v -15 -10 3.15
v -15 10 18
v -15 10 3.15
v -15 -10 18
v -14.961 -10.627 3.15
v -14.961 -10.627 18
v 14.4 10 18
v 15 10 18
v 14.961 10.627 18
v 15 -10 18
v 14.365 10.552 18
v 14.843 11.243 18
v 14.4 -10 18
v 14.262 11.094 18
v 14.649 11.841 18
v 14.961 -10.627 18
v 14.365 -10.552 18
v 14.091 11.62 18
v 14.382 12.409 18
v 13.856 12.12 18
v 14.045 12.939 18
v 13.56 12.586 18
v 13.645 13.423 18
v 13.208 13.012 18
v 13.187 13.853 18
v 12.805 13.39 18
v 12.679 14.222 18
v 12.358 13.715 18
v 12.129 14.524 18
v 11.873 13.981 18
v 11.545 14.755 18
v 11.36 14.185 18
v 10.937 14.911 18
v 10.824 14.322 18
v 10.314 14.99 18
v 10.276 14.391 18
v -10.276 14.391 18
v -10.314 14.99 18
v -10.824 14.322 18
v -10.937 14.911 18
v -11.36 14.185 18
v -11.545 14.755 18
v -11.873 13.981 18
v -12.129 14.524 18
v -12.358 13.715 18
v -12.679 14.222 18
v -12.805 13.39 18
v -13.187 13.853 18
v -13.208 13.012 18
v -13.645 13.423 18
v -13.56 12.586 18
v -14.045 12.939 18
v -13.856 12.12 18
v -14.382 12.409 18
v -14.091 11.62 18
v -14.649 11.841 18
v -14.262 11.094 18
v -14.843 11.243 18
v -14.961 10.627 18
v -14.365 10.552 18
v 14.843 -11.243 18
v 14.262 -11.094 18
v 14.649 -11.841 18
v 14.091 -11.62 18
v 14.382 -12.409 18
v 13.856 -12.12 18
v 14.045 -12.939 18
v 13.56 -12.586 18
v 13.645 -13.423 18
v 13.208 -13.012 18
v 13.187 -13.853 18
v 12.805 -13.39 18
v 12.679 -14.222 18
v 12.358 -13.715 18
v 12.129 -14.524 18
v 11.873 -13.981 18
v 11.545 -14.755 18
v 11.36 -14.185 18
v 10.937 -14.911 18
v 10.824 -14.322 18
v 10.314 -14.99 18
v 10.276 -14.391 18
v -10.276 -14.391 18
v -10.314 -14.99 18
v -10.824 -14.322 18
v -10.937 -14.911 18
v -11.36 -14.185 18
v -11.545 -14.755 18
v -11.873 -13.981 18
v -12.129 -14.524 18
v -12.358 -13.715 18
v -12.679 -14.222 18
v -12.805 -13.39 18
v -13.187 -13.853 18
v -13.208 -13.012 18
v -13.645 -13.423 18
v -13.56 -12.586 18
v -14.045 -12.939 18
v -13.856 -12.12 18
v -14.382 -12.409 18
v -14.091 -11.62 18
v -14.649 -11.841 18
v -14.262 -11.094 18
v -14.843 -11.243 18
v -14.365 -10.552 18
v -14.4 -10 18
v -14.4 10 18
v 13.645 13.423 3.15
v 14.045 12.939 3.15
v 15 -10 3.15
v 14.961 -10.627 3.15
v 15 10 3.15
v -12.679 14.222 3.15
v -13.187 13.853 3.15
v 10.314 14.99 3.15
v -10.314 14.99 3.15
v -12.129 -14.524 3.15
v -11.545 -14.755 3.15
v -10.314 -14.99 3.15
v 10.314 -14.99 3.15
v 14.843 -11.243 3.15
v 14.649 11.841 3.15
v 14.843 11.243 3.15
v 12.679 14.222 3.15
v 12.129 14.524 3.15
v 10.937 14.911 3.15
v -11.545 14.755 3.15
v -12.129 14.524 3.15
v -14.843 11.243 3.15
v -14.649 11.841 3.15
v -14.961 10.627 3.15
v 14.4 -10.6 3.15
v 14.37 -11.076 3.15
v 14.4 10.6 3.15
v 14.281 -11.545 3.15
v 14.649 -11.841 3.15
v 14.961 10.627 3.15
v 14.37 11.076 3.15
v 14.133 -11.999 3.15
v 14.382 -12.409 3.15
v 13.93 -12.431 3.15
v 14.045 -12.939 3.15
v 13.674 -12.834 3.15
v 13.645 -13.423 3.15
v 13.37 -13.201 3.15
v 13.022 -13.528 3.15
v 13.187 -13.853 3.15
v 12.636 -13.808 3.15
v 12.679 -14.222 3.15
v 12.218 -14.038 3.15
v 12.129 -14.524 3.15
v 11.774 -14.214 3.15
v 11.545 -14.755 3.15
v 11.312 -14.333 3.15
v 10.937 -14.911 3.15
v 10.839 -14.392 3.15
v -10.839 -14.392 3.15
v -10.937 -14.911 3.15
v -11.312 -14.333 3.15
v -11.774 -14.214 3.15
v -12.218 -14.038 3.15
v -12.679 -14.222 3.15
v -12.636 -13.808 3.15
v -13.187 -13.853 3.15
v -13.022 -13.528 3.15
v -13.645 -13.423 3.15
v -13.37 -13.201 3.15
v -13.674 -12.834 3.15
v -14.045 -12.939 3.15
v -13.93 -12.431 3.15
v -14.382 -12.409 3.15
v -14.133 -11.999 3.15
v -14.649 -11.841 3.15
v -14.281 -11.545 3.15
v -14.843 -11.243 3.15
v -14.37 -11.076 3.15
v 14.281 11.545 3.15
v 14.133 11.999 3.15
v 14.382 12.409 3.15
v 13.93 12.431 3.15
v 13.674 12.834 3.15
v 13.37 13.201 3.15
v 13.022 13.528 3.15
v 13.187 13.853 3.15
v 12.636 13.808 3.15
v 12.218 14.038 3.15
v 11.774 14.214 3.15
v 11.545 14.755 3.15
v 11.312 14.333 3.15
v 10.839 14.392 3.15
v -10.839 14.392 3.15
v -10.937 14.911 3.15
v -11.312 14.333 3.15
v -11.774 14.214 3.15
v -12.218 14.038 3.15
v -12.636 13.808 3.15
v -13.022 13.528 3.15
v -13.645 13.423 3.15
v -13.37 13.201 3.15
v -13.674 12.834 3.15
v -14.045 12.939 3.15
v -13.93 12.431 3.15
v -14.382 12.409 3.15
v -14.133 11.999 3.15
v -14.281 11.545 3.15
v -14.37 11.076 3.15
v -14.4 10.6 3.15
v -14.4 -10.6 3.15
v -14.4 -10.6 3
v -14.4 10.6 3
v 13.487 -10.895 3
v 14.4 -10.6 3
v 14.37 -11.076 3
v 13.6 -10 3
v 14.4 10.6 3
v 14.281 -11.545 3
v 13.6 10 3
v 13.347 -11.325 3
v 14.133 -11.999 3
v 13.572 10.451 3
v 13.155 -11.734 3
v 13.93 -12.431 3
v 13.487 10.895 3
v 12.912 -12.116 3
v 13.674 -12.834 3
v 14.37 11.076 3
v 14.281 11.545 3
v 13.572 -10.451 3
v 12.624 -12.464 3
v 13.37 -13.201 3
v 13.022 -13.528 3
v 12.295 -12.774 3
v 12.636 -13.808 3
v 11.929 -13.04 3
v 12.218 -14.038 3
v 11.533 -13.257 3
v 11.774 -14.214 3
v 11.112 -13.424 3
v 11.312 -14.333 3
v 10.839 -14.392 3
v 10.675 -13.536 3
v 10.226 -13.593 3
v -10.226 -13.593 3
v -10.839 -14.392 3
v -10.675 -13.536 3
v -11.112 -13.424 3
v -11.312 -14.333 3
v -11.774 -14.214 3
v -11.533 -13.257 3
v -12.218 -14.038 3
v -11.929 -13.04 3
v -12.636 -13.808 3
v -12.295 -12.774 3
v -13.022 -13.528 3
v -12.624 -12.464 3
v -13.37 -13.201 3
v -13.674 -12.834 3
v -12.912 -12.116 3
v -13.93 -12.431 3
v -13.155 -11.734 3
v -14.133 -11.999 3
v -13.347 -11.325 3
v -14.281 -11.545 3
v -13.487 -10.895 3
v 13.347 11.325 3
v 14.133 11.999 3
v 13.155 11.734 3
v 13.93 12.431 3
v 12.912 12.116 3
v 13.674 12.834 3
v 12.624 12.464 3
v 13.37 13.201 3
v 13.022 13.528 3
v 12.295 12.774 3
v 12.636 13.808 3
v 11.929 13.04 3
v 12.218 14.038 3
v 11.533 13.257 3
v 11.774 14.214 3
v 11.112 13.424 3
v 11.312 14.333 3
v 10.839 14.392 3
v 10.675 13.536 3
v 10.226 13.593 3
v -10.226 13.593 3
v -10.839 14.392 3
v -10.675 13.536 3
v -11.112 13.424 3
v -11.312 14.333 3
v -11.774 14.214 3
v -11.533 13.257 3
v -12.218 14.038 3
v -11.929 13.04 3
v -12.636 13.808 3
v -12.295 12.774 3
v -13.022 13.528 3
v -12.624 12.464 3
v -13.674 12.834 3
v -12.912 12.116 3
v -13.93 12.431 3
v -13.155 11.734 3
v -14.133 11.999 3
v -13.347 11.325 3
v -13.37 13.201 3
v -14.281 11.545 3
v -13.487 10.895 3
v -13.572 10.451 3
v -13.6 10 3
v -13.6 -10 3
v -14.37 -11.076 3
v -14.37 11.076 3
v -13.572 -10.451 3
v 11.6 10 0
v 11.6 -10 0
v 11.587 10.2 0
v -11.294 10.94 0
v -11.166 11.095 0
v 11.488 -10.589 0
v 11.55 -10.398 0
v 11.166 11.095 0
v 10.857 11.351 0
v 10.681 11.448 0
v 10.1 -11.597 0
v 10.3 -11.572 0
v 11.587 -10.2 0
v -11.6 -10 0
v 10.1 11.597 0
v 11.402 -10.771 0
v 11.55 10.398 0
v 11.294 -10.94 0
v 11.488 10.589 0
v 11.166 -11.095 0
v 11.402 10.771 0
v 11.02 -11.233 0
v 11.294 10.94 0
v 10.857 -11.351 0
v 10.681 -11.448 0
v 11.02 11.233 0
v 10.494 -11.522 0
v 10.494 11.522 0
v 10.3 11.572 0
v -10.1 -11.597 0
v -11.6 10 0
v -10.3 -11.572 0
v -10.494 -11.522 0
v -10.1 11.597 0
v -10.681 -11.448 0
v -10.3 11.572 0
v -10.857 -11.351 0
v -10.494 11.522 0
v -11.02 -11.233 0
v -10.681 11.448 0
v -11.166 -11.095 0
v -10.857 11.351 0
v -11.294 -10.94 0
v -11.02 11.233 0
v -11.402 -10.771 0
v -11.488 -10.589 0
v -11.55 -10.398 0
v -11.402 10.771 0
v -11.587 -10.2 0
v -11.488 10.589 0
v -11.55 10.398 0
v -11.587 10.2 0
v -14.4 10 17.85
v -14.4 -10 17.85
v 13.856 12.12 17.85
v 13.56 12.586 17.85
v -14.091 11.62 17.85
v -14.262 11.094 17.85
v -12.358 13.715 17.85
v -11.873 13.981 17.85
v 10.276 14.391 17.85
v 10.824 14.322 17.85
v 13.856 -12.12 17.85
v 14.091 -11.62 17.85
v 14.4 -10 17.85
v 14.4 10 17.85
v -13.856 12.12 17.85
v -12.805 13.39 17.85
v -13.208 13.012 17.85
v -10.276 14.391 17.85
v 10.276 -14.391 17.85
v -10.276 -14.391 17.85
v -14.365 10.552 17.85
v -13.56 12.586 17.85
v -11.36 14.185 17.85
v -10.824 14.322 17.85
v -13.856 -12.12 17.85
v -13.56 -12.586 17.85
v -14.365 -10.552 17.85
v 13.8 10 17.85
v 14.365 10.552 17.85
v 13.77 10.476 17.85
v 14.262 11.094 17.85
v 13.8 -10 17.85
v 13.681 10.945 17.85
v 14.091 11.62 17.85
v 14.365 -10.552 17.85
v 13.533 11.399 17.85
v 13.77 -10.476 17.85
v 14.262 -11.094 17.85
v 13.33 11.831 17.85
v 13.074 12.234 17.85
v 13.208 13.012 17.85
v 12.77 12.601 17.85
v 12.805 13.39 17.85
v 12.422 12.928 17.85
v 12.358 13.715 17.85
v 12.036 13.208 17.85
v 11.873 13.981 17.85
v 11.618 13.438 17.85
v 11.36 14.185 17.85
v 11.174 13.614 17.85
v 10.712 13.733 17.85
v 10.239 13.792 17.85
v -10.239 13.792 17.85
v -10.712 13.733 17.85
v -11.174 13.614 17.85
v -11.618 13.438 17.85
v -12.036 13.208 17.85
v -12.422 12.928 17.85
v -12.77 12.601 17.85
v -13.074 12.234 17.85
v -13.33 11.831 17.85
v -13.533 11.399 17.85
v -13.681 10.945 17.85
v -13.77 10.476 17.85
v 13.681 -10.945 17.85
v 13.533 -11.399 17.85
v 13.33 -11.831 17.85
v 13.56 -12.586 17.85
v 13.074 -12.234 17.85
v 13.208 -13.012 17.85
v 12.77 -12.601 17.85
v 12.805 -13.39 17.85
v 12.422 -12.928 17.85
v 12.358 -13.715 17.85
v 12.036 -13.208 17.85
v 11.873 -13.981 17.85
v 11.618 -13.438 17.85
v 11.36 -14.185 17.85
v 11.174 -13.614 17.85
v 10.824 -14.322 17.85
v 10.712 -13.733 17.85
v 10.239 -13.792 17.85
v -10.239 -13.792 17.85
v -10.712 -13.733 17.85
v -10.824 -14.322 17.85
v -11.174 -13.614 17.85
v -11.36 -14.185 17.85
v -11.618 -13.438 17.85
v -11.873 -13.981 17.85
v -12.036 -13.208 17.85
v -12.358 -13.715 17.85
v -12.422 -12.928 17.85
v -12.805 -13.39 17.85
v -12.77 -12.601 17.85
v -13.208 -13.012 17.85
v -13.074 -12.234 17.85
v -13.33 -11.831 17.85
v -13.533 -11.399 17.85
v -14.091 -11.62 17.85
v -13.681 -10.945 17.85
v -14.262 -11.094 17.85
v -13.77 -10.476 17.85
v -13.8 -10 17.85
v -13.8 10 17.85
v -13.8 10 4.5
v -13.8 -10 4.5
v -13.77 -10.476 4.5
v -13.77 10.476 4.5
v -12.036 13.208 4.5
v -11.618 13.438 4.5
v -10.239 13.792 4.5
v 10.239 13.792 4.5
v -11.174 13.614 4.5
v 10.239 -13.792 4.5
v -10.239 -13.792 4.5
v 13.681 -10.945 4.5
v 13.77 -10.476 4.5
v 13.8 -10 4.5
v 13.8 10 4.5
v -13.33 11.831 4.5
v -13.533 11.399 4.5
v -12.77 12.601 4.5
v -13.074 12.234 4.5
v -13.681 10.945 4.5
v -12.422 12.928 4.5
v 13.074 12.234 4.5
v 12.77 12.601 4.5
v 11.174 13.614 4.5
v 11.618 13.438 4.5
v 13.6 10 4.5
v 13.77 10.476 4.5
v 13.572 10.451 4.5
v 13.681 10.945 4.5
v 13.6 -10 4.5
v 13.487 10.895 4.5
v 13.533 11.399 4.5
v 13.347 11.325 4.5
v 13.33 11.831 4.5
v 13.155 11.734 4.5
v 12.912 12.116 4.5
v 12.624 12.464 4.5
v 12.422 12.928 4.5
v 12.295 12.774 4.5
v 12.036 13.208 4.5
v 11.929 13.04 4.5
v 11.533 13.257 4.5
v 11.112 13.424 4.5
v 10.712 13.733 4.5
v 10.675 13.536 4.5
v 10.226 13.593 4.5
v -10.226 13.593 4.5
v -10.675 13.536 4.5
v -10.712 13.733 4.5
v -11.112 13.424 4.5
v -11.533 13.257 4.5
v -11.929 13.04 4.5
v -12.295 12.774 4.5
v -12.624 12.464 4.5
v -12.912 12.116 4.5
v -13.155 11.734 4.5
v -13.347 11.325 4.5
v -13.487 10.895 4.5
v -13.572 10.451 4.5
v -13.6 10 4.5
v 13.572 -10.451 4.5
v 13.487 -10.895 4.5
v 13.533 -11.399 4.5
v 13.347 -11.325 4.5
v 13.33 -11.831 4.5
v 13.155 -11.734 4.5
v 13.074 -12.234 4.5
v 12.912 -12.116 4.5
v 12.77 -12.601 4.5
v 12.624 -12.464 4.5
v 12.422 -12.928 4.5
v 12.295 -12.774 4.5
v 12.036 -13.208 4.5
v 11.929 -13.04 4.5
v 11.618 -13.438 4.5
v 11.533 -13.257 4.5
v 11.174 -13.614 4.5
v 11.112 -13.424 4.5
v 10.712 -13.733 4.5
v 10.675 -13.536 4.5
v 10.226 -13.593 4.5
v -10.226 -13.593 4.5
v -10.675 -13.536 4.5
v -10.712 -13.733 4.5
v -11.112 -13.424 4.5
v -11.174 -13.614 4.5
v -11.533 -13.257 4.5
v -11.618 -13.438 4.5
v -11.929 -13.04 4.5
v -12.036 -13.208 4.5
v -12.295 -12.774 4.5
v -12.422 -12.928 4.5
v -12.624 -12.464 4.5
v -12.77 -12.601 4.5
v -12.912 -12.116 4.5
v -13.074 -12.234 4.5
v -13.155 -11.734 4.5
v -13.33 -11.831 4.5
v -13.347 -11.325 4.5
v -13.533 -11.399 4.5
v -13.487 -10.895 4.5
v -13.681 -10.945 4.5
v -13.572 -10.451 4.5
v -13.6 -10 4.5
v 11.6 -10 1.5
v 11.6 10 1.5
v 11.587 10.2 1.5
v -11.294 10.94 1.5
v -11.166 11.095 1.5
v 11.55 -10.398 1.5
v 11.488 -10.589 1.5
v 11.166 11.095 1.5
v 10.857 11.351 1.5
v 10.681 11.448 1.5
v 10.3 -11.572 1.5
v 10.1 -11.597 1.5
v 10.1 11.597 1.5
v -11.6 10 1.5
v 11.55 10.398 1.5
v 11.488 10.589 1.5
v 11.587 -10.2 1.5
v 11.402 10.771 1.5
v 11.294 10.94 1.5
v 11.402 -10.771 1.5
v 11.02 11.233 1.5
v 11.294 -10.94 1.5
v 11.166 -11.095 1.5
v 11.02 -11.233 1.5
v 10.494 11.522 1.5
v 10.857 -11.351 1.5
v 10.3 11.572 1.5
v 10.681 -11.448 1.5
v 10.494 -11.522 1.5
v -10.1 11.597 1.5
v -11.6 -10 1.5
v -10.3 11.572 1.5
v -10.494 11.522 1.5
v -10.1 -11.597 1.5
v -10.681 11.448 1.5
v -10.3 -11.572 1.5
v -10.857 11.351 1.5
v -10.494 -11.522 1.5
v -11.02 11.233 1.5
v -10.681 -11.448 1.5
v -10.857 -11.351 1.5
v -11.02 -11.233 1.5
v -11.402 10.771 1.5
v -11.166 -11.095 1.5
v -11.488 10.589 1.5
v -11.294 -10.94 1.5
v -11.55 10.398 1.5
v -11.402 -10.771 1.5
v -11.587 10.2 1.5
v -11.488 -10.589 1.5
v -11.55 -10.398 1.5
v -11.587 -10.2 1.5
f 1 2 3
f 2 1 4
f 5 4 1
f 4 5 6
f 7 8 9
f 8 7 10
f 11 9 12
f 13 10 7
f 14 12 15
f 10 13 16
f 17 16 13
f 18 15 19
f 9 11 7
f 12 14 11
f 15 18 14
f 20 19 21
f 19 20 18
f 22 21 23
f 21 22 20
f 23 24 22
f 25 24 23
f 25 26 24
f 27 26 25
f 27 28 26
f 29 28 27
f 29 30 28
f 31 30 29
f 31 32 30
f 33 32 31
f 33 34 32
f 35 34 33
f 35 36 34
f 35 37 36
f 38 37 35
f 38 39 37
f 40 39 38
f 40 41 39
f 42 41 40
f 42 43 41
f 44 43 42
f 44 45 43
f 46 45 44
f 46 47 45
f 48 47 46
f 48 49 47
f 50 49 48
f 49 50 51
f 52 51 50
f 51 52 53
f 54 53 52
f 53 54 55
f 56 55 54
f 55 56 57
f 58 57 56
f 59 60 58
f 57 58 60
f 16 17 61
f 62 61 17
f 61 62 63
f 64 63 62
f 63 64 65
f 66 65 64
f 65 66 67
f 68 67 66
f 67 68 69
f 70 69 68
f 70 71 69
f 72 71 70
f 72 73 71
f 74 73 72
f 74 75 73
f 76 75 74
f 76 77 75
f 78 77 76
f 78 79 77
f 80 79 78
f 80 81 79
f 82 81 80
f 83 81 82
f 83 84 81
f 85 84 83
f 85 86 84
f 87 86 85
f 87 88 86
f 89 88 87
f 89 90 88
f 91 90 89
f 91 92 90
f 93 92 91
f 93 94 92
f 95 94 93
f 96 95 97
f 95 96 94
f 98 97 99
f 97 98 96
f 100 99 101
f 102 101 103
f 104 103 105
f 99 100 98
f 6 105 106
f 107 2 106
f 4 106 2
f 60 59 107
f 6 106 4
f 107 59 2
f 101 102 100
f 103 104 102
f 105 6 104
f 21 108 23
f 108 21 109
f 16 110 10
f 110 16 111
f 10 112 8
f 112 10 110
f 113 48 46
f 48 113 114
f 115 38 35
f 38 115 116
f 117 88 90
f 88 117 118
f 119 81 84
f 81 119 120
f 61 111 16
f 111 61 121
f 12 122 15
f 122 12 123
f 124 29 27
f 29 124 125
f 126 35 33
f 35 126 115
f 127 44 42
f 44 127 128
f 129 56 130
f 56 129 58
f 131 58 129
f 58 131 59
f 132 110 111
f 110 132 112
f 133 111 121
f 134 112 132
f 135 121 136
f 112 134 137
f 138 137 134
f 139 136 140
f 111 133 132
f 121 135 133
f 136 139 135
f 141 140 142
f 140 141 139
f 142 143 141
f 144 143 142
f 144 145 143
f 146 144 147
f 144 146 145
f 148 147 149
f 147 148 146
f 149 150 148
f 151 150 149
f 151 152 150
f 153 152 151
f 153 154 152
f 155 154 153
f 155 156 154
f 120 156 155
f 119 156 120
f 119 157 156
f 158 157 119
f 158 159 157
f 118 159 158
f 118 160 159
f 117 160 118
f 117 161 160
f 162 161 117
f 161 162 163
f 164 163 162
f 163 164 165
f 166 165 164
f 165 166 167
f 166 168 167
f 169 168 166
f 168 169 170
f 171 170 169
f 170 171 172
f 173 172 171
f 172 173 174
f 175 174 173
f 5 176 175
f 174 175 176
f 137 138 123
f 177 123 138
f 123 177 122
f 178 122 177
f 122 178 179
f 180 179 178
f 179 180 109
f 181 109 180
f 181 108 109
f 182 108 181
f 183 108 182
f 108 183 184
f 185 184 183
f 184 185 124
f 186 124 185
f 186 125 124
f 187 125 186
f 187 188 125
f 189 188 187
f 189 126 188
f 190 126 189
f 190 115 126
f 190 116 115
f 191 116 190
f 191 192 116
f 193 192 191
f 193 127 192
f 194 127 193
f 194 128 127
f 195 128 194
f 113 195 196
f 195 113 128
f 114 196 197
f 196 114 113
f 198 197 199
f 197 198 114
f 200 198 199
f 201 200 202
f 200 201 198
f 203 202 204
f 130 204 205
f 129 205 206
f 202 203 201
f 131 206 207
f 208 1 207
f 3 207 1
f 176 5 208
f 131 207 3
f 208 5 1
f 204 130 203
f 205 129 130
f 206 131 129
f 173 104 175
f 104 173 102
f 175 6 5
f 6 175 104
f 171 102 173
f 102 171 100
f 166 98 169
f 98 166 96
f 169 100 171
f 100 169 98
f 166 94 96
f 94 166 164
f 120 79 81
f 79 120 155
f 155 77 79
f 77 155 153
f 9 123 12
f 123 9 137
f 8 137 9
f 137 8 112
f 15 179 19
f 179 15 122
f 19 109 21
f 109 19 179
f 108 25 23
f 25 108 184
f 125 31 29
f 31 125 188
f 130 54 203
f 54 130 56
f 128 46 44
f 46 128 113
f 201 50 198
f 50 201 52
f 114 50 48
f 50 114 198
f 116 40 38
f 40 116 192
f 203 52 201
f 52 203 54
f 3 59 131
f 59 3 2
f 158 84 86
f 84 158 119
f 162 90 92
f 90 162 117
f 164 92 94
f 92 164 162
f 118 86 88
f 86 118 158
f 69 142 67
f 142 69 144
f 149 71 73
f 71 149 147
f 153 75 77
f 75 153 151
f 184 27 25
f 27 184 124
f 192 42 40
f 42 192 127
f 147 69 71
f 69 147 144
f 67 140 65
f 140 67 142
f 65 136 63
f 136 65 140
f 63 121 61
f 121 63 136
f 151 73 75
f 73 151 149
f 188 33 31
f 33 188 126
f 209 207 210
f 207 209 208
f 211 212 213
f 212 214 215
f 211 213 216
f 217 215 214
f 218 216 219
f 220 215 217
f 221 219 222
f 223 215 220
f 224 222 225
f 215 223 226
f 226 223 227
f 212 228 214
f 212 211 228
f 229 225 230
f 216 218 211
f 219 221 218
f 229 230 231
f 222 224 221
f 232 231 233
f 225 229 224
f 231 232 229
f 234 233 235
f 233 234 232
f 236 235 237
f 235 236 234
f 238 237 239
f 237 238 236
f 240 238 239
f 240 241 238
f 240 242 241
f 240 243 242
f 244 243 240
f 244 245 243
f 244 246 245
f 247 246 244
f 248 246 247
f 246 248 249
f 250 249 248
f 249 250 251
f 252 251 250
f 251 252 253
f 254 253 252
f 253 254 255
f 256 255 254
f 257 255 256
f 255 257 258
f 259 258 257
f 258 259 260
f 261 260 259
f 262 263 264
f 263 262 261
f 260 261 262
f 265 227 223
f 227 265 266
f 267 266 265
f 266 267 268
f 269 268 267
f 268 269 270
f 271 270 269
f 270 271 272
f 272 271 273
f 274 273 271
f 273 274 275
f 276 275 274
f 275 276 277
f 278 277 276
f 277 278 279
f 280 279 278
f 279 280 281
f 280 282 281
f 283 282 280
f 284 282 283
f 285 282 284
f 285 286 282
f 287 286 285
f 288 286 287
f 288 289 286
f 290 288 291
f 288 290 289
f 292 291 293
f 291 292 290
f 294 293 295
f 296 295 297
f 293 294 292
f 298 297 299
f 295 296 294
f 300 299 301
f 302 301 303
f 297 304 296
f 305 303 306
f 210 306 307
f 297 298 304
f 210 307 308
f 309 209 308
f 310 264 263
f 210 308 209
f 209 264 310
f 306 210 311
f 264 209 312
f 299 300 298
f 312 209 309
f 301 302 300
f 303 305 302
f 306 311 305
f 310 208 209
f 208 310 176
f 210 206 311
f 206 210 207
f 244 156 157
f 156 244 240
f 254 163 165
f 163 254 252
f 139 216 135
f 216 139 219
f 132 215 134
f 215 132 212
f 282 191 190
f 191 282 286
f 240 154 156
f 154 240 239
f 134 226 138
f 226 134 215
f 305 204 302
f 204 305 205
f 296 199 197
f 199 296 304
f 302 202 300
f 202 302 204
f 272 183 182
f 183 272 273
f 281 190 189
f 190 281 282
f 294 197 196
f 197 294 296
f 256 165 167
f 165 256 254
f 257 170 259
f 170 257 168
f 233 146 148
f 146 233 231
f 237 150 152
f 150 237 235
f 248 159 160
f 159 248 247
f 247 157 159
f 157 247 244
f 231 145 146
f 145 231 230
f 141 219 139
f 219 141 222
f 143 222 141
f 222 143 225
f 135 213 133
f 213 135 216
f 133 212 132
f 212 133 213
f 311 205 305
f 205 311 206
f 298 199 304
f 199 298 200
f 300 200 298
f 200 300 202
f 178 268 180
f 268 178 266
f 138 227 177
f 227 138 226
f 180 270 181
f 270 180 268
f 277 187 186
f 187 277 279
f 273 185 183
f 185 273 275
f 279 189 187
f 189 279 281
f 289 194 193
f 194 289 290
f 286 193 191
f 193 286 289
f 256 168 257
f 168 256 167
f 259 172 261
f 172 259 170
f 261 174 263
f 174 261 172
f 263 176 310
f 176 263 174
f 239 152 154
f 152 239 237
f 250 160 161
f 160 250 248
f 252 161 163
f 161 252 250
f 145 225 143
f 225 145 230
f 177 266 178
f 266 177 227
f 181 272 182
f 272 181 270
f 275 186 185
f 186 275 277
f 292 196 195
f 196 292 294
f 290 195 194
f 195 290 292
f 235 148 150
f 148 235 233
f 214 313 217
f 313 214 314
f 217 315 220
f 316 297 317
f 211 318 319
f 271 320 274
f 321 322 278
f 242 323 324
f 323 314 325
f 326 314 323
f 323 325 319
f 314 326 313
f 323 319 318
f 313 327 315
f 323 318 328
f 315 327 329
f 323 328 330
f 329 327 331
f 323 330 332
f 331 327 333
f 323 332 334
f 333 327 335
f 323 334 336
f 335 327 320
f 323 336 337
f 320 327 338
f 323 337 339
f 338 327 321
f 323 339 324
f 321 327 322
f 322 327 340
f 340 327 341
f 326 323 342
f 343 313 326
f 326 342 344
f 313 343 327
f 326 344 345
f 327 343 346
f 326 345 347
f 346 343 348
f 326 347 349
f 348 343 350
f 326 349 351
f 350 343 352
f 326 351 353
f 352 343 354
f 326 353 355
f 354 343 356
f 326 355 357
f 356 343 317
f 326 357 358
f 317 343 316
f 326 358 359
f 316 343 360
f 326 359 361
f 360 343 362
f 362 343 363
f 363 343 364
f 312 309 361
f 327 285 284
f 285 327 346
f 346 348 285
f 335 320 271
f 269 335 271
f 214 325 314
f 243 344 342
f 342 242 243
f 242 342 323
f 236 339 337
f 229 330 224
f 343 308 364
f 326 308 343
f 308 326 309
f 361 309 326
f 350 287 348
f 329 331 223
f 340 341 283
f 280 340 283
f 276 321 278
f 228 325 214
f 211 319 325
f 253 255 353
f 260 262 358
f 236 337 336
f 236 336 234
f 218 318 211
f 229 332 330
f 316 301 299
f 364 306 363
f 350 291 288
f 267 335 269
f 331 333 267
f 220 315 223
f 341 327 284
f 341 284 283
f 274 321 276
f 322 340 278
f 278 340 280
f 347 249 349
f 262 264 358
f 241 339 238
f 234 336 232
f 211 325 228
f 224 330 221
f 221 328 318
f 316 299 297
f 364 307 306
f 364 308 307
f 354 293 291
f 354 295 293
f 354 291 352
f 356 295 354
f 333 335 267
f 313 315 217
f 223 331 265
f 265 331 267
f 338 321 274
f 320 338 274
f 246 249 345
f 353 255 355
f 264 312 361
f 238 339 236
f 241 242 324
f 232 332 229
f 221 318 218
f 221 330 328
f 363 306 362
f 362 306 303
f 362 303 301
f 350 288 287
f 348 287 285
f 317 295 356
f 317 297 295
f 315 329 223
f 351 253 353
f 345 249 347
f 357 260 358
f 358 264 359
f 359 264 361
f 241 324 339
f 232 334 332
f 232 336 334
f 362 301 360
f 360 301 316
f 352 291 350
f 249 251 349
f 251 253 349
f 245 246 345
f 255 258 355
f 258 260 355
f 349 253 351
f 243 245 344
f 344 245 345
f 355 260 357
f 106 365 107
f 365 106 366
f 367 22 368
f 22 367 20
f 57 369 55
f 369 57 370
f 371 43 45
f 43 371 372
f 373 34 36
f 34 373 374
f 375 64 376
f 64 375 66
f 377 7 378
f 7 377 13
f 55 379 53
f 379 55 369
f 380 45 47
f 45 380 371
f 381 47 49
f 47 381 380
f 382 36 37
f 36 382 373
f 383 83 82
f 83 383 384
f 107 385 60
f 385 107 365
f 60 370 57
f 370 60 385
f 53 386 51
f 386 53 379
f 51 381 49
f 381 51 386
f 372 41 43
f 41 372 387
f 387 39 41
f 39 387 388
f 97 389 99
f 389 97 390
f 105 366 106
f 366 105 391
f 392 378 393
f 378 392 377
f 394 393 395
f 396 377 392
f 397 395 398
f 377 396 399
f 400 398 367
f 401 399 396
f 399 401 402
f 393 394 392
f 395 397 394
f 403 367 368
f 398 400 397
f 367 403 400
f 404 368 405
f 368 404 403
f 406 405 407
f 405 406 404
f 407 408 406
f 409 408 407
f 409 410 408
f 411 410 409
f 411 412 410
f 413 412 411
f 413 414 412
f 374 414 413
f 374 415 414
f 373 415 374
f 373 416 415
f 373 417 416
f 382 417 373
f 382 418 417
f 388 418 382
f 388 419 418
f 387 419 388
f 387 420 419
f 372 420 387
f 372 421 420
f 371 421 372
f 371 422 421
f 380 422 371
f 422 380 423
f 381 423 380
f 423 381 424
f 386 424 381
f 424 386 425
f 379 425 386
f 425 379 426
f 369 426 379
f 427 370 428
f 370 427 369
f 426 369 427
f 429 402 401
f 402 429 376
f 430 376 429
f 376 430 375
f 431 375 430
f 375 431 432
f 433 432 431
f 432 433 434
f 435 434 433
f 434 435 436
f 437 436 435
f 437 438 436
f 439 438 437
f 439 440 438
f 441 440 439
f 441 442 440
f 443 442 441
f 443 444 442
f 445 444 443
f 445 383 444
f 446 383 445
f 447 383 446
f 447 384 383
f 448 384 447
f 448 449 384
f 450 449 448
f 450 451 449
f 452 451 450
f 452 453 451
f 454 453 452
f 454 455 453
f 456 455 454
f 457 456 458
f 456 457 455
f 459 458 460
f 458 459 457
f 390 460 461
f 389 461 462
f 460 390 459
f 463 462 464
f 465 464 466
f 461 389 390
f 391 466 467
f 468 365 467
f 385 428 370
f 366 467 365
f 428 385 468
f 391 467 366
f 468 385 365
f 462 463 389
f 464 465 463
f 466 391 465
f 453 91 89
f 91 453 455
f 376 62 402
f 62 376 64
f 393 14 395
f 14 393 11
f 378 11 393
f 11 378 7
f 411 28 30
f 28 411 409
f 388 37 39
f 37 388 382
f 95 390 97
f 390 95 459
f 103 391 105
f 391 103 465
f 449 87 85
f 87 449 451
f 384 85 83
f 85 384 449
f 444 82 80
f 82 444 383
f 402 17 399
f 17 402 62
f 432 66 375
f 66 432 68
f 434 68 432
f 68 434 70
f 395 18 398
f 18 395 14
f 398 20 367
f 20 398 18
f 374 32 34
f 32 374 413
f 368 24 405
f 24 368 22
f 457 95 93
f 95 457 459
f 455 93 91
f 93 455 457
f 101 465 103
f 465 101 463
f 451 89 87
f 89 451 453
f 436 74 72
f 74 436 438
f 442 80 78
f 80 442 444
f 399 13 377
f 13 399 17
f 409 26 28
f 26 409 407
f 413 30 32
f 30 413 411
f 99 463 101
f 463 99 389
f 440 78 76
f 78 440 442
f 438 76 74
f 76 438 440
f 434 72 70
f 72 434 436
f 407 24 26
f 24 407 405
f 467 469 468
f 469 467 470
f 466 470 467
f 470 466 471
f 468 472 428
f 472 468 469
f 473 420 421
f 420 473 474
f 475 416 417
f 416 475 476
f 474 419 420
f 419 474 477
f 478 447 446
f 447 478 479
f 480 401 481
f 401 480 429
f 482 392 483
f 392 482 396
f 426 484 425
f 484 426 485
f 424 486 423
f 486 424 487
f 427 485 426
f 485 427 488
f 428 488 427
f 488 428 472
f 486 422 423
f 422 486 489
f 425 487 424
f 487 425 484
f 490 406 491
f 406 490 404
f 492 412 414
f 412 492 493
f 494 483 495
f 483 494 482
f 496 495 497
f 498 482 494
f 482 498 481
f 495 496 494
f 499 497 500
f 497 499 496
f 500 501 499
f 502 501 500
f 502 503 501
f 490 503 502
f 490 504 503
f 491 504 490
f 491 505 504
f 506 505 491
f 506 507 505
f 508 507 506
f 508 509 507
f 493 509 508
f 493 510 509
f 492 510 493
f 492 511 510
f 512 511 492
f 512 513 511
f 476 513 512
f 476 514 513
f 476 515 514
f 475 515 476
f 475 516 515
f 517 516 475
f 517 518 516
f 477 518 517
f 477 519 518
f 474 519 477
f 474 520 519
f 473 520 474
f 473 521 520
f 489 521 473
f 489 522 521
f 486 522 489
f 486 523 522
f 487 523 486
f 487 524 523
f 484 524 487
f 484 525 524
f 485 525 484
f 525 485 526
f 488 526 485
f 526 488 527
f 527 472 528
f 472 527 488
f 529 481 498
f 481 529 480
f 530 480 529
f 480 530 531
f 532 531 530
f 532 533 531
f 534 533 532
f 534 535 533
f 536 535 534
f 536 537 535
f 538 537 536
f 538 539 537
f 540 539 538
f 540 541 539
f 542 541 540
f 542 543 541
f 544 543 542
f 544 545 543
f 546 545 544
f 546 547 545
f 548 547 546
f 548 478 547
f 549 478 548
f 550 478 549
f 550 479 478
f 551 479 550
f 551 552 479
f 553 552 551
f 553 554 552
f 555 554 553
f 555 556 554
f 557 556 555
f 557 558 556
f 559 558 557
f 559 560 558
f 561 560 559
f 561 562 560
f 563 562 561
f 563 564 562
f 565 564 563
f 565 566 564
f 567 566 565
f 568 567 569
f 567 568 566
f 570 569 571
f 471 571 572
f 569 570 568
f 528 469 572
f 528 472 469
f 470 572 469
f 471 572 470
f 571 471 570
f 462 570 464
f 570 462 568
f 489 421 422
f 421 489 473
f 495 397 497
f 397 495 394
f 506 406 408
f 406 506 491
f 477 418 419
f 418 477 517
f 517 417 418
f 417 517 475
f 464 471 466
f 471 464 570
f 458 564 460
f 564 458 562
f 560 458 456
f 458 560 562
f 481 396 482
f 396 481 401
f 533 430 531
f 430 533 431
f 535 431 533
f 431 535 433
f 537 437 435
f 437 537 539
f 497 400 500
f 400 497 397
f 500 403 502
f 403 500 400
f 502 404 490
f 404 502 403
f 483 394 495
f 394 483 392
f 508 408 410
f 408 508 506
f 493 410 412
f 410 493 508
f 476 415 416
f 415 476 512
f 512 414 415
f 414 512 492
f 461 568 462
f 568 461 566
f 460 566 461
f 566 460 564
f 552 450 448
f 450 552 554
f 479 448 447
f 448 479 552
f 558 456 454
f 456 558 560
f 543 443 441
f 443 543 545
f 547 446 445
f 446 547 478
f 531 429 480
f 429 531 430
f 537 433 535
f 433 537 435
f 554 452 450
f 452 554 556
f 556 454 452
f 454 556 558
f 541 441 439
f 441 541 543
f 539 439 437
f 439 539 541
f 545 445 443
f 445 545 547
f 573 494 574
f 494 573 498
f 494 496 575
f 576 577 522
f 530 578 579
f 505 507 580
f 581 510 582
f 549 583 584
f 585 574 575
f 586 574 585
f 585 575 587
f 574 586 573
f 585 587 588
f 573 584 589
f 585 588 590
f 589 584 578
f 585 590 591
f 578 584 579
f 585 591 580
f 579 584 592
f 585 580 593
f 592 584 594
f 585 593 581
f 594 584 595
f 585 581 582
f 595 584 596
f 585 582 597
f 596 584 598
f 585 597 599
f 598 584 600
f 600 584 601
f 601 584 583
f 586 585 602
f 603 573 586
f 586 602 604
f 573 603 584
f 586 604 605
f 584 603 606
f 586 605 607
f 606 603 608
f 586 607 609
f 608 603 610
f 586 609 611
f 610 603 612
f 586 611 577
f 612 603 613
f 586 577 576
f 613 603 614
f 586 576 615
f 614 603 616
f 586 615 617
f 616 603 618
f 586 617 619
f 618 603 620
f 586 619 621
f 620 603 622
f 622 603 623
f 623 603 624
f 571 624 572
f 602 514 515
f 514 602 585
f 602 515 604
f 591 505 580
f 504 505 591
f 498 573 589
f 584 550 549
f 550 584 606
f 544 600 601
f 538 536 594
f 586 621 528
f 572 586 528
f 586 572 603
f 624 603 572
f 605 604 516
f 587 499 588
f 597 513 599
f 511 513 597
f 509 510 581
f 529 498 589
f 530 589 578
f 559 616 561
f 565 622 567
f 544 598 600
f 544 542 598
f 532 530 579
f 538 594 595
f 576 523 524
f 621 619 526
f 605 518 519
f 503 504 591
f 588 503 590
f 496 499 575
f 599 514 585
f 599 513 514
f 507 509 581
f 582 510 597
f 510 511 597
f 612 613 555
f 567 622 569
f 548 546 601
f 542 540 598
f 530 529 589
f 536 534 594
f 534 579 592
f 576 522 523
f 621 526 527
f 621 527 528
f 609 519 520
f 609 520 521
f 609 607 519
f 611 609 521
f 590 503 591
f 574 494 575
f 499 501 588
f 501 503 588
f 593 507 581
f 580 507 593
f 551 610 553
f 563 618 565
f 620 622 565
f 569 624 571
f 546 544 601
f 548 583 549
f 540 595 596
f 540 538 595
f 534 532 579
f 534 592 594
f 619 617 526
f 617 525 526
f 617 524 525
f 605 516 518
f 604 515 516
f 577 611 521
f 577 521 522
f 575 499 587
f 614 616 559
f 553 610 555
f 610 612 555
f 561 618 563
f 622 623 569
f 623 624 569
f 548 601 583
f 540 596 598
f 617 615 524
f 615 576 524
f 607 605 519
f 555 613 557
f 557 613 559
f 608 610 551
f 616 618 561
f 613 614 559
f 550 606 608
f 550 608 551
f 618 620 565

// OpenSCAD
$fn = 50;


difference() {
	union() {
		translate(v = [0, 0, 3.1500000000]) {
			hull() {
				translate(v = [-10.0000000000, 10.0000000000, 0]) {
					cylinder(h = 14.8500000000, r = 5);
				}
				translate(v = [10.0000000000, 10.0000000000, 0]) {
					cylinder(h = 14.8500000000, r = 5);
				}
				translate(v = [-10.0000000000, -10.0000000000, 0]) {
					cylinder(h = 14.8500000000, r = 5);
				}
				translate(v = [10.0000000000, -10.0000000000, 0]) {
					cylinder(h = 14.8500000000, r = 5);
				}
			}
		}
		translate(v = [0, 0, 3]) {
			hull() {
				translate(v = [-10.6000000000, 10.6000000000, 0]) {
					cylinder(h = 0.1500000000, r = 3.8000000000);
				}
				translate(v = [10.6000000000, 10.6000000000, 0]) {
					cylinder(h = 0.1500000000, r = 3.8000000000);
				}
				translate(v = [-10.6000000000, -10.6000000000, 0]) {
					cylinder(h = 0.1500000000, r = 3.8000000000);
				}
				translate(v = [10.6000000000, -10.6000000000, 0]) {
					cylinder(h = 0.1500000000, r = 3.8000000000);
				}
			}
		}
		translate(v = [0.0000000000, 0.0000000000, 3]) {
			rotate(a = [0, 180, 0]) {
				hull() {
					translate(v = [-10.0000000000, 10.0000000000, 0]) {
						cylinder(h = 3, r1 = 3.6000000000, r2 = 1.6000000000);
					}
					translate(v = [10.0000000000, 10.0000000000, 0]) {
						cylinder(h = 3, r1 = 3.6000000000, r2 = 1.6000000000);
					}
					translate(v = [-10.0000000000, -10.0000000000, 0]) {
						cylinder(h = 3, r1 = 3.6000000000, r2 = 1.6000000000);
					}
					translate(v = [10.0000000000, -10.0000000000, 0]) {
						cylinder(h = 3, r1 = 3.6000000000, r2 = 1.6000000000);
					}
				}
			}
		}
	}
	union() {
		translate(v = [0, 0, 17.8500000000]) {
			hull() {
				translate(v = [-10.0000000000, 10.0000000000, 0]) {
					cylinder(h = 0.1500000000, r = 4.4000000000);
				}
				translate(v = [10.0000000000, 10.0000000000, 0]) {
					cylinder(h = 0.1500000000, r = 4.4000000000);
				}
				translate(v = [-10.0000000000, -10.0000000000, 0]) {
					cylinder(h = 0.1500000000, r = 4.4000000000);
				}
				translate(v = [10.0000000000, -10.0000000000, 0]) {
					cylinder(h = 0.1500000000, r = 4.4000000000);
				}
			}
		}
		translate(v = [0, 0, 4.5000000000]) {
			hull() {
				translate(v = [-10.0000000000, 10.0000000000, 0]) {
					cylinder(h = 13.5000000000, r = 3.8000000000);
				}
				translate(v = [10.0000000000, 10.0000000000, 0]) {
					cylinder(h = 13.5000000000, r = 3.8000000000);
				}
				translate(v = [-10.0000000000, -10.0000000000, 0]) {
					cylinder(h = 13.5000000000, r = 3.8000000000);
				}
				translate(v = [10.0000000000, -10.0000000000, 0]) {
					cylinder(h = 13.5000000000, r = 3.8000000000);
				}
			}
		}
		translate(v = [0.0000000000, 0.0000000000, 4.5000000000]) {
			rotate(a = [0, 180, 0]) {
				#hull() {
					translate(v = [-10.0000000000, 10.0000000000, 0]) {
						cylinder(h = 3, r1 = 3.6000000000, r2 = 1.6000000000);
					}
					translate(v = [10.0000000000, 10.0000000000, 0]) {
						cylinder(h = 3, r1 = 3.6000000000, r2 = 1.6000000000);
					}
					translate(v = [-10.0000000000, -10.0000000000, 0]) {
						cylinder(h = 3, r1 = 3.6000000000, r2 = 1.6000000000);
					}
					translate(v = [10.0000000000, -10.0000000000, 0]) {
						cylinder(h = 3, r1 = 3.6000000000, r2 = 1.6000000000);
					}
				}
			}
		}
	}
}
